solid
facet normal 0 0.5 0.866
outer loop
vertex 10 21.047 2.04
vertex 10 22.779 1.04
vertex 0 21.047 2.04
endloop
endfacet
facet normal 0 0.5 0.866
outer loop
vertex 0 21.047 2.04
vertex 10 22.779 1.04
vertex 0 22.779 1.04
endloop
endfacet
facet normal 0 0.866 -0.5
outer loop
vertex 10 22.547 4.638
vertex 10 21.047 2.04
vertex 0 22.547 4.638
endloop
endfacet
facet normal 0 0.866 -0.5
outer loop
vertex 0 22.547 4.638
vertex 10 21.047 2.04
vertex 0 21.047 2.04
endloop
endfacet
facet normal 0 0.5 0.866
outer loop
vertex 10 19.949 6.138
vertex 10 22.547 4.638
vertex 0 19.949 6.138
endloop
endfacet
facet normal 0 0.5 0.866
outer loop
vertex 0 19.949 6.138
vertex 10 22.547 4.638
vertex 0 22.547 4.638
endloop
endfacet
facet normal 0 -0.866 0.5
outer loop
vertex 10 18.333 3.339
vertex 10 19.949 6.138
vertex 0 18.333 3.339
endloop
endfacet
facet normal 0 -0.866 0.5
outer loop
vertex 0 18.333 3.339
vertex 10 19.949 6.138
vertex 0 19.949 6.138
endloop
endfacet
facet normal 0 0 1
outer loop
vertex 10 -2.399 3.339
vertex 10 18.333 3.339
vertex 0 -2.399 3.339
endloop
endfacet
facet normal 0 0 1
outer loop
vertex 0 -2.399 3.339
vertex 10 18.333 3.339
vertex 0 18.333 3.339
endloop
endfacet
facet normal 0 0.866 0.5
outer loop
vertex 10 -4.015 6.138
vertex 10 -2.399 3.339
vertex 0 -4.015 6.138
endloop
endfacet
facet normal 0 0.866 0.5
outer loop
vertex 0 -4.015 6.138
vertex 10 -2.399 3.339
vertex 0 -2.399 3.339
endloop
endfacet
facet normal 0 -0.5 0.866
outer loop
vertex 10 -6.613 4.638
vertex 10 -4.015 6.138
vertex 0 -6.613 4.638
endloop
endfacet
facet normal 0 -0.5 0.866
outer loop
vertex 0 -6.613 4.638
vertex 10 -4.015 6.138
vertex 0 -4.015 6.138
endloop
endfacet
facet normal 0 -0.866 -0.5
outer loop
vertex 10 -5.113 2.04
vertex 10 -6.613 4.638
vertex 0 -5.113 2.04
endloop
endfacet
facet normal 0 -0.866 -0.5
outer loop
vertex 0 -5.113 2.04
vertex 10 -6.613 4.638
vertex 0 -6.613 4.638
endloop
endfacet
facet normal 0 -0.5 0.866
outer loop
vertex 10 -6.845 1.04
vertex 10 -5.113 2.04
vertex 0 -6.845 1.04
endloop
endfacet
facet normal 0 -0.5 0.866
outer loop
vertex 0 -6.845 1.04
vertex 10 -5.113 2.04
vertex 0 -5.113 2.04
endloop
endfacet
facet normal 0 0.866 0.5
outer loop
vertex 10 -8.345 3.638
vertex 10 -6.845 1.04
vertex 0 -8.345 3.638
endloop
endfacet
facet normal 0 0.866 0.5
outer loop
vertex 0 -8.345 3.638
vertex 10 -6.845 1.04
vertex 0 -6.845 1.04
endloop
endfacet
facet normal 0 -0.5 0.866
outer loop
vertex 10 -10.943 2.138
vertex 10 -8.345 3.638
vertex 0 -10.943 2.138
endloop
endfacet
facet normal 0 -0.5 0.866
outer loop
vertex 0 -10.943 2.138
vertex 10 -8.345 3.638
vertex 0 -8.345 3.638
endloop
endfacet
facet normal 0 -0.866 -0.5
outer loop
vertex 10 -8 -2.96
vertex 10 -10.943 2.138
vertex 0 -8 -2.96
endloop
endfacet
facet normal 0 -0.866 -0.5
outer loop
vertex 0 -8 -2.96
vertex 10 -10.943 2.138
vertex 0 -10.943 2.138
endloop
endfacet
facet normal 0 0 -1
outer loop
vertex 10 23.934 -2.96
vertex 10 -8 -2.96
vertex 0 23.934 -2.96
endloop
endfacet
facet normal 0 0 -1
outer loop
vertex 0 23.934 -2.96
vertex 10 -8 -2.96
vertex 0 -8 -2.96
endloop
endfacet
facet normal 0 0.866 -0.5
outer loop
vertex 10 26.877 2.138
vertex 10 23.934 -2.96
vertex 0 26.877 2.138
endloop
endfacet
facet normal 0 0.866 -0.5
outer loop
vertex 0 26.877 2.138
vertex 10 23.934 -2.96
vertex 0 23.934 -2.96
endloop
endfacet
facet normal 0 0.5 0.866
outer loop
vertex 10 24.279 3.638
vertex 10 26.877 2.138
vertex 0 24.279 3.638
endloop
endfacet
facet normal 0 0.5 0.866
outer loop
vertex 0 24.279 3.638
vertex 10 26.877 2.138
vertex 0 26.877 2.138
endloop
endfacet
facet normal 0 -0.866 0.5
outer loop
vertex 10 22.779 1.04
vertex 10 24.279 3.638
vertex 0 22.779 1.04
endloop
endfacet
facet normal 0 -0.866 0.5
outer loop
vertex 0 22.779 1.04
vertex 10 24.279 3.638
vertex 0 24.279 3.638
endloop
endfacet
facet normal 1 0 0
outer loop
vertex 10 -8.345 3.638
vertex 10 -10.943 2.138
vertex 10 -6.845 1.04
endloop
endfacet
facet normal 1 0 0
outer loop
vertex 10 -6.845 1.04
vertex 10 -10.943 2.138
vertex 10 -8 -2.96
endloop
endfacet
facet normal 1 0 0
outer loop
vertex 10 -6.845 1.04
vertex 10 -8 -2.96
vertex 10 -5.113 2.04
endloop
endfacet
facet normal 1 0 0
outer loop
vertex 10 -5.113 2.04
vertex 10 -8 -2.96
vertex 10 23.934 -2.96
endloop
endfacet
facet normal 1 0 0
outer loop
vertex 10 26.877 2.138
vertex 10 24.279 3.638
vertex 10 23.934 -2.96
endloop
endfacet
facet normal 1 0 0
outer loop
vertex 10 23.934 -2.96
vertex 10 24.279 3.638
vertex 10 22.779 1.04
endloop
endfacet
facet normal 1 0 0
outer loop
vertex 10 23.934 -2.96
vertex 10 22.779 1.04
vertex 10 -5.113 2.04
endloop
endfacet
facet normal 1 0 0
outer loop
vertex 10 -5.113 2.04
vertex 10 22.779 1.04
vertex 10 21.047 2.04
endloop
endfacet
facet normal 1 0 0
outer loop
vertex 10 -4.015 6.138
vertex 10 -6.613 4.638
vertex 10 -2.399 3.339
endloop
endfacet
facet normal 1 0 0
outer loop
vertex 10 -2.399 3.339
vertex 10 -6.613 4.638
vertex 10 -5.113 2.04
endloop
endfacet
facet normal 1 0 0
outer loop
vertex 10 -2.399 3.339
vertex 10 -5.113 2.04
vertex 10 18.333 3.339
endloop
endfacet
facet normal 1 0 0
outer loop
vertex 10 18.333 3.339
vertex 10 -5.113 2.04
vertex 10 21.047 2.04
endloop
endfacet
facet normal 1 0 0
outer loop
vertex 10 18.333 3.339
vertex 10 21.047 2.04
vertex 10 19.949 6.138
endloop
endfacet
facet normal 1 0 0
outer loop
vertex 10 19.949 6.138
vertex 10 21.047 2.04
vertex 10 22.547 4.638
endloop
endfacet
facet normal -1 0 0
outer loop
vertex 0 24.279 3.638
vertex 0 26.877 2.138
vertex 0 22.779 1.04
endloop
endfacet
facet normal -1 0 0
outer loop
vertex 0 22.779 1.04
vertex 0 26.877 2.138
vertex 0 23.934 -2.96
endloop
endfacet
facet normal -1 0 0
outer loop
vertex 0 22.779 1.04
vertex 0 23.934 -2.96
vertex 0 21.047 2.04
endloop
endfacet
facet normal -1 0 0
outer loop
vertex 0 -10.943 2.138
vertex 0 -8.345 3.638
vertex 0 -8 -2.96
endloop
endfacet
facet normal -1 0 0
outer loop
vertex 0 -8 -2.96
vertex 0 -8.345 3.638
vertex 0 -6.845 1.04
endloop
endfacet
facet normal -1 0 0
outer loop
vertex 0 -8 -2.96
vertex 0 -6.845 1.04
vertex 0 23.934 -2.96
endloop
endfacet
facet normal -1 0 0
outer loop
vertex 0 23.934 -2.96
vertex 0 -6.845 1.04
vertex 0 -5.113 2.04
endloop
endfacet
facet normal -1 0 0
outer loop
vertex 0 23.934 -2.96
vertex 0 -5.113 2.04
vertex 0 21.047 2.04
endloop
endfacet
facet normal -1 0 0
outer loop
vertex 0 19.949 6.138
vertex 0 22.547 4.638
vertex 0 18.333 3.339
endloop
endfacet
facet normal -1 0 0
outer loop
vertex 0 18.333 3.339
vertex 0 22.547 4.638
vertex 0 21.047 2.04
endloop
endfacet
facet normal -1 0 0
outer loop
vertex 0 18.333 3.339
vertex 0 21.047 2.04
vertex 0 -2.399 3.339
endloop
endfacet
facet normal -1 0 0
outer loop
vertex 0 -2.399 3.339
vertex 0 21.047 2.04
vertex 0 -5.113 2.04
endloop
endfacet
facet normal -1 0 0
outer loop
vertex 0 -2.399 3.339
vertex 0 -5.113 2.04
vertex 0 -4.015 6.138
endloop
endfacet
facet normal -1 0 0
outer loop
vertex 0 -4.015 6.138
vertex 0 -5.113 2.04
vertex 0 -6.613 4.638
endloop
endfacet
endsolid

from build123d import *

# Parameters (mm, degrees)
EXTRUDE_1_DEPTH = 10


with BuildPart() as part:
    # Эскиз1 → Бобышка-Вытянуть1 (new body)
    with BuildSketch(Plane(origin=(0, 0, 0), x_dir=(0, 0, -1), z_dir=(1, 0, 0))):
        Polygon((-2.039845048, 21.046884737), (-4.637921259, 22.546884737), (-6.137921259, 19.948808526), (-3.338883154, 18.332783122), (-3.338883154, -2.399013647), (-6.137921259, -4.015039051), (-4.637921259, -6.613115263), (-2.039845048, -5.113115263), (-1.039845048, -6.84516607), (-2.338883154, -7.59516607), (-3.637921259, -8.34516607), (-2.137921259, -10.943242281), (2.960154952, -7.999866609), (2.960154952, 23.933636083), (-2.137921259, 26.877011756), (-3.637921259, 24.278935545), (-2.338883154, 23.528935545), (-1.039845048, 22.778935545), align=None)
    extrude(amount=EXTRUDE_1_DEPTH)


solid = part.part
